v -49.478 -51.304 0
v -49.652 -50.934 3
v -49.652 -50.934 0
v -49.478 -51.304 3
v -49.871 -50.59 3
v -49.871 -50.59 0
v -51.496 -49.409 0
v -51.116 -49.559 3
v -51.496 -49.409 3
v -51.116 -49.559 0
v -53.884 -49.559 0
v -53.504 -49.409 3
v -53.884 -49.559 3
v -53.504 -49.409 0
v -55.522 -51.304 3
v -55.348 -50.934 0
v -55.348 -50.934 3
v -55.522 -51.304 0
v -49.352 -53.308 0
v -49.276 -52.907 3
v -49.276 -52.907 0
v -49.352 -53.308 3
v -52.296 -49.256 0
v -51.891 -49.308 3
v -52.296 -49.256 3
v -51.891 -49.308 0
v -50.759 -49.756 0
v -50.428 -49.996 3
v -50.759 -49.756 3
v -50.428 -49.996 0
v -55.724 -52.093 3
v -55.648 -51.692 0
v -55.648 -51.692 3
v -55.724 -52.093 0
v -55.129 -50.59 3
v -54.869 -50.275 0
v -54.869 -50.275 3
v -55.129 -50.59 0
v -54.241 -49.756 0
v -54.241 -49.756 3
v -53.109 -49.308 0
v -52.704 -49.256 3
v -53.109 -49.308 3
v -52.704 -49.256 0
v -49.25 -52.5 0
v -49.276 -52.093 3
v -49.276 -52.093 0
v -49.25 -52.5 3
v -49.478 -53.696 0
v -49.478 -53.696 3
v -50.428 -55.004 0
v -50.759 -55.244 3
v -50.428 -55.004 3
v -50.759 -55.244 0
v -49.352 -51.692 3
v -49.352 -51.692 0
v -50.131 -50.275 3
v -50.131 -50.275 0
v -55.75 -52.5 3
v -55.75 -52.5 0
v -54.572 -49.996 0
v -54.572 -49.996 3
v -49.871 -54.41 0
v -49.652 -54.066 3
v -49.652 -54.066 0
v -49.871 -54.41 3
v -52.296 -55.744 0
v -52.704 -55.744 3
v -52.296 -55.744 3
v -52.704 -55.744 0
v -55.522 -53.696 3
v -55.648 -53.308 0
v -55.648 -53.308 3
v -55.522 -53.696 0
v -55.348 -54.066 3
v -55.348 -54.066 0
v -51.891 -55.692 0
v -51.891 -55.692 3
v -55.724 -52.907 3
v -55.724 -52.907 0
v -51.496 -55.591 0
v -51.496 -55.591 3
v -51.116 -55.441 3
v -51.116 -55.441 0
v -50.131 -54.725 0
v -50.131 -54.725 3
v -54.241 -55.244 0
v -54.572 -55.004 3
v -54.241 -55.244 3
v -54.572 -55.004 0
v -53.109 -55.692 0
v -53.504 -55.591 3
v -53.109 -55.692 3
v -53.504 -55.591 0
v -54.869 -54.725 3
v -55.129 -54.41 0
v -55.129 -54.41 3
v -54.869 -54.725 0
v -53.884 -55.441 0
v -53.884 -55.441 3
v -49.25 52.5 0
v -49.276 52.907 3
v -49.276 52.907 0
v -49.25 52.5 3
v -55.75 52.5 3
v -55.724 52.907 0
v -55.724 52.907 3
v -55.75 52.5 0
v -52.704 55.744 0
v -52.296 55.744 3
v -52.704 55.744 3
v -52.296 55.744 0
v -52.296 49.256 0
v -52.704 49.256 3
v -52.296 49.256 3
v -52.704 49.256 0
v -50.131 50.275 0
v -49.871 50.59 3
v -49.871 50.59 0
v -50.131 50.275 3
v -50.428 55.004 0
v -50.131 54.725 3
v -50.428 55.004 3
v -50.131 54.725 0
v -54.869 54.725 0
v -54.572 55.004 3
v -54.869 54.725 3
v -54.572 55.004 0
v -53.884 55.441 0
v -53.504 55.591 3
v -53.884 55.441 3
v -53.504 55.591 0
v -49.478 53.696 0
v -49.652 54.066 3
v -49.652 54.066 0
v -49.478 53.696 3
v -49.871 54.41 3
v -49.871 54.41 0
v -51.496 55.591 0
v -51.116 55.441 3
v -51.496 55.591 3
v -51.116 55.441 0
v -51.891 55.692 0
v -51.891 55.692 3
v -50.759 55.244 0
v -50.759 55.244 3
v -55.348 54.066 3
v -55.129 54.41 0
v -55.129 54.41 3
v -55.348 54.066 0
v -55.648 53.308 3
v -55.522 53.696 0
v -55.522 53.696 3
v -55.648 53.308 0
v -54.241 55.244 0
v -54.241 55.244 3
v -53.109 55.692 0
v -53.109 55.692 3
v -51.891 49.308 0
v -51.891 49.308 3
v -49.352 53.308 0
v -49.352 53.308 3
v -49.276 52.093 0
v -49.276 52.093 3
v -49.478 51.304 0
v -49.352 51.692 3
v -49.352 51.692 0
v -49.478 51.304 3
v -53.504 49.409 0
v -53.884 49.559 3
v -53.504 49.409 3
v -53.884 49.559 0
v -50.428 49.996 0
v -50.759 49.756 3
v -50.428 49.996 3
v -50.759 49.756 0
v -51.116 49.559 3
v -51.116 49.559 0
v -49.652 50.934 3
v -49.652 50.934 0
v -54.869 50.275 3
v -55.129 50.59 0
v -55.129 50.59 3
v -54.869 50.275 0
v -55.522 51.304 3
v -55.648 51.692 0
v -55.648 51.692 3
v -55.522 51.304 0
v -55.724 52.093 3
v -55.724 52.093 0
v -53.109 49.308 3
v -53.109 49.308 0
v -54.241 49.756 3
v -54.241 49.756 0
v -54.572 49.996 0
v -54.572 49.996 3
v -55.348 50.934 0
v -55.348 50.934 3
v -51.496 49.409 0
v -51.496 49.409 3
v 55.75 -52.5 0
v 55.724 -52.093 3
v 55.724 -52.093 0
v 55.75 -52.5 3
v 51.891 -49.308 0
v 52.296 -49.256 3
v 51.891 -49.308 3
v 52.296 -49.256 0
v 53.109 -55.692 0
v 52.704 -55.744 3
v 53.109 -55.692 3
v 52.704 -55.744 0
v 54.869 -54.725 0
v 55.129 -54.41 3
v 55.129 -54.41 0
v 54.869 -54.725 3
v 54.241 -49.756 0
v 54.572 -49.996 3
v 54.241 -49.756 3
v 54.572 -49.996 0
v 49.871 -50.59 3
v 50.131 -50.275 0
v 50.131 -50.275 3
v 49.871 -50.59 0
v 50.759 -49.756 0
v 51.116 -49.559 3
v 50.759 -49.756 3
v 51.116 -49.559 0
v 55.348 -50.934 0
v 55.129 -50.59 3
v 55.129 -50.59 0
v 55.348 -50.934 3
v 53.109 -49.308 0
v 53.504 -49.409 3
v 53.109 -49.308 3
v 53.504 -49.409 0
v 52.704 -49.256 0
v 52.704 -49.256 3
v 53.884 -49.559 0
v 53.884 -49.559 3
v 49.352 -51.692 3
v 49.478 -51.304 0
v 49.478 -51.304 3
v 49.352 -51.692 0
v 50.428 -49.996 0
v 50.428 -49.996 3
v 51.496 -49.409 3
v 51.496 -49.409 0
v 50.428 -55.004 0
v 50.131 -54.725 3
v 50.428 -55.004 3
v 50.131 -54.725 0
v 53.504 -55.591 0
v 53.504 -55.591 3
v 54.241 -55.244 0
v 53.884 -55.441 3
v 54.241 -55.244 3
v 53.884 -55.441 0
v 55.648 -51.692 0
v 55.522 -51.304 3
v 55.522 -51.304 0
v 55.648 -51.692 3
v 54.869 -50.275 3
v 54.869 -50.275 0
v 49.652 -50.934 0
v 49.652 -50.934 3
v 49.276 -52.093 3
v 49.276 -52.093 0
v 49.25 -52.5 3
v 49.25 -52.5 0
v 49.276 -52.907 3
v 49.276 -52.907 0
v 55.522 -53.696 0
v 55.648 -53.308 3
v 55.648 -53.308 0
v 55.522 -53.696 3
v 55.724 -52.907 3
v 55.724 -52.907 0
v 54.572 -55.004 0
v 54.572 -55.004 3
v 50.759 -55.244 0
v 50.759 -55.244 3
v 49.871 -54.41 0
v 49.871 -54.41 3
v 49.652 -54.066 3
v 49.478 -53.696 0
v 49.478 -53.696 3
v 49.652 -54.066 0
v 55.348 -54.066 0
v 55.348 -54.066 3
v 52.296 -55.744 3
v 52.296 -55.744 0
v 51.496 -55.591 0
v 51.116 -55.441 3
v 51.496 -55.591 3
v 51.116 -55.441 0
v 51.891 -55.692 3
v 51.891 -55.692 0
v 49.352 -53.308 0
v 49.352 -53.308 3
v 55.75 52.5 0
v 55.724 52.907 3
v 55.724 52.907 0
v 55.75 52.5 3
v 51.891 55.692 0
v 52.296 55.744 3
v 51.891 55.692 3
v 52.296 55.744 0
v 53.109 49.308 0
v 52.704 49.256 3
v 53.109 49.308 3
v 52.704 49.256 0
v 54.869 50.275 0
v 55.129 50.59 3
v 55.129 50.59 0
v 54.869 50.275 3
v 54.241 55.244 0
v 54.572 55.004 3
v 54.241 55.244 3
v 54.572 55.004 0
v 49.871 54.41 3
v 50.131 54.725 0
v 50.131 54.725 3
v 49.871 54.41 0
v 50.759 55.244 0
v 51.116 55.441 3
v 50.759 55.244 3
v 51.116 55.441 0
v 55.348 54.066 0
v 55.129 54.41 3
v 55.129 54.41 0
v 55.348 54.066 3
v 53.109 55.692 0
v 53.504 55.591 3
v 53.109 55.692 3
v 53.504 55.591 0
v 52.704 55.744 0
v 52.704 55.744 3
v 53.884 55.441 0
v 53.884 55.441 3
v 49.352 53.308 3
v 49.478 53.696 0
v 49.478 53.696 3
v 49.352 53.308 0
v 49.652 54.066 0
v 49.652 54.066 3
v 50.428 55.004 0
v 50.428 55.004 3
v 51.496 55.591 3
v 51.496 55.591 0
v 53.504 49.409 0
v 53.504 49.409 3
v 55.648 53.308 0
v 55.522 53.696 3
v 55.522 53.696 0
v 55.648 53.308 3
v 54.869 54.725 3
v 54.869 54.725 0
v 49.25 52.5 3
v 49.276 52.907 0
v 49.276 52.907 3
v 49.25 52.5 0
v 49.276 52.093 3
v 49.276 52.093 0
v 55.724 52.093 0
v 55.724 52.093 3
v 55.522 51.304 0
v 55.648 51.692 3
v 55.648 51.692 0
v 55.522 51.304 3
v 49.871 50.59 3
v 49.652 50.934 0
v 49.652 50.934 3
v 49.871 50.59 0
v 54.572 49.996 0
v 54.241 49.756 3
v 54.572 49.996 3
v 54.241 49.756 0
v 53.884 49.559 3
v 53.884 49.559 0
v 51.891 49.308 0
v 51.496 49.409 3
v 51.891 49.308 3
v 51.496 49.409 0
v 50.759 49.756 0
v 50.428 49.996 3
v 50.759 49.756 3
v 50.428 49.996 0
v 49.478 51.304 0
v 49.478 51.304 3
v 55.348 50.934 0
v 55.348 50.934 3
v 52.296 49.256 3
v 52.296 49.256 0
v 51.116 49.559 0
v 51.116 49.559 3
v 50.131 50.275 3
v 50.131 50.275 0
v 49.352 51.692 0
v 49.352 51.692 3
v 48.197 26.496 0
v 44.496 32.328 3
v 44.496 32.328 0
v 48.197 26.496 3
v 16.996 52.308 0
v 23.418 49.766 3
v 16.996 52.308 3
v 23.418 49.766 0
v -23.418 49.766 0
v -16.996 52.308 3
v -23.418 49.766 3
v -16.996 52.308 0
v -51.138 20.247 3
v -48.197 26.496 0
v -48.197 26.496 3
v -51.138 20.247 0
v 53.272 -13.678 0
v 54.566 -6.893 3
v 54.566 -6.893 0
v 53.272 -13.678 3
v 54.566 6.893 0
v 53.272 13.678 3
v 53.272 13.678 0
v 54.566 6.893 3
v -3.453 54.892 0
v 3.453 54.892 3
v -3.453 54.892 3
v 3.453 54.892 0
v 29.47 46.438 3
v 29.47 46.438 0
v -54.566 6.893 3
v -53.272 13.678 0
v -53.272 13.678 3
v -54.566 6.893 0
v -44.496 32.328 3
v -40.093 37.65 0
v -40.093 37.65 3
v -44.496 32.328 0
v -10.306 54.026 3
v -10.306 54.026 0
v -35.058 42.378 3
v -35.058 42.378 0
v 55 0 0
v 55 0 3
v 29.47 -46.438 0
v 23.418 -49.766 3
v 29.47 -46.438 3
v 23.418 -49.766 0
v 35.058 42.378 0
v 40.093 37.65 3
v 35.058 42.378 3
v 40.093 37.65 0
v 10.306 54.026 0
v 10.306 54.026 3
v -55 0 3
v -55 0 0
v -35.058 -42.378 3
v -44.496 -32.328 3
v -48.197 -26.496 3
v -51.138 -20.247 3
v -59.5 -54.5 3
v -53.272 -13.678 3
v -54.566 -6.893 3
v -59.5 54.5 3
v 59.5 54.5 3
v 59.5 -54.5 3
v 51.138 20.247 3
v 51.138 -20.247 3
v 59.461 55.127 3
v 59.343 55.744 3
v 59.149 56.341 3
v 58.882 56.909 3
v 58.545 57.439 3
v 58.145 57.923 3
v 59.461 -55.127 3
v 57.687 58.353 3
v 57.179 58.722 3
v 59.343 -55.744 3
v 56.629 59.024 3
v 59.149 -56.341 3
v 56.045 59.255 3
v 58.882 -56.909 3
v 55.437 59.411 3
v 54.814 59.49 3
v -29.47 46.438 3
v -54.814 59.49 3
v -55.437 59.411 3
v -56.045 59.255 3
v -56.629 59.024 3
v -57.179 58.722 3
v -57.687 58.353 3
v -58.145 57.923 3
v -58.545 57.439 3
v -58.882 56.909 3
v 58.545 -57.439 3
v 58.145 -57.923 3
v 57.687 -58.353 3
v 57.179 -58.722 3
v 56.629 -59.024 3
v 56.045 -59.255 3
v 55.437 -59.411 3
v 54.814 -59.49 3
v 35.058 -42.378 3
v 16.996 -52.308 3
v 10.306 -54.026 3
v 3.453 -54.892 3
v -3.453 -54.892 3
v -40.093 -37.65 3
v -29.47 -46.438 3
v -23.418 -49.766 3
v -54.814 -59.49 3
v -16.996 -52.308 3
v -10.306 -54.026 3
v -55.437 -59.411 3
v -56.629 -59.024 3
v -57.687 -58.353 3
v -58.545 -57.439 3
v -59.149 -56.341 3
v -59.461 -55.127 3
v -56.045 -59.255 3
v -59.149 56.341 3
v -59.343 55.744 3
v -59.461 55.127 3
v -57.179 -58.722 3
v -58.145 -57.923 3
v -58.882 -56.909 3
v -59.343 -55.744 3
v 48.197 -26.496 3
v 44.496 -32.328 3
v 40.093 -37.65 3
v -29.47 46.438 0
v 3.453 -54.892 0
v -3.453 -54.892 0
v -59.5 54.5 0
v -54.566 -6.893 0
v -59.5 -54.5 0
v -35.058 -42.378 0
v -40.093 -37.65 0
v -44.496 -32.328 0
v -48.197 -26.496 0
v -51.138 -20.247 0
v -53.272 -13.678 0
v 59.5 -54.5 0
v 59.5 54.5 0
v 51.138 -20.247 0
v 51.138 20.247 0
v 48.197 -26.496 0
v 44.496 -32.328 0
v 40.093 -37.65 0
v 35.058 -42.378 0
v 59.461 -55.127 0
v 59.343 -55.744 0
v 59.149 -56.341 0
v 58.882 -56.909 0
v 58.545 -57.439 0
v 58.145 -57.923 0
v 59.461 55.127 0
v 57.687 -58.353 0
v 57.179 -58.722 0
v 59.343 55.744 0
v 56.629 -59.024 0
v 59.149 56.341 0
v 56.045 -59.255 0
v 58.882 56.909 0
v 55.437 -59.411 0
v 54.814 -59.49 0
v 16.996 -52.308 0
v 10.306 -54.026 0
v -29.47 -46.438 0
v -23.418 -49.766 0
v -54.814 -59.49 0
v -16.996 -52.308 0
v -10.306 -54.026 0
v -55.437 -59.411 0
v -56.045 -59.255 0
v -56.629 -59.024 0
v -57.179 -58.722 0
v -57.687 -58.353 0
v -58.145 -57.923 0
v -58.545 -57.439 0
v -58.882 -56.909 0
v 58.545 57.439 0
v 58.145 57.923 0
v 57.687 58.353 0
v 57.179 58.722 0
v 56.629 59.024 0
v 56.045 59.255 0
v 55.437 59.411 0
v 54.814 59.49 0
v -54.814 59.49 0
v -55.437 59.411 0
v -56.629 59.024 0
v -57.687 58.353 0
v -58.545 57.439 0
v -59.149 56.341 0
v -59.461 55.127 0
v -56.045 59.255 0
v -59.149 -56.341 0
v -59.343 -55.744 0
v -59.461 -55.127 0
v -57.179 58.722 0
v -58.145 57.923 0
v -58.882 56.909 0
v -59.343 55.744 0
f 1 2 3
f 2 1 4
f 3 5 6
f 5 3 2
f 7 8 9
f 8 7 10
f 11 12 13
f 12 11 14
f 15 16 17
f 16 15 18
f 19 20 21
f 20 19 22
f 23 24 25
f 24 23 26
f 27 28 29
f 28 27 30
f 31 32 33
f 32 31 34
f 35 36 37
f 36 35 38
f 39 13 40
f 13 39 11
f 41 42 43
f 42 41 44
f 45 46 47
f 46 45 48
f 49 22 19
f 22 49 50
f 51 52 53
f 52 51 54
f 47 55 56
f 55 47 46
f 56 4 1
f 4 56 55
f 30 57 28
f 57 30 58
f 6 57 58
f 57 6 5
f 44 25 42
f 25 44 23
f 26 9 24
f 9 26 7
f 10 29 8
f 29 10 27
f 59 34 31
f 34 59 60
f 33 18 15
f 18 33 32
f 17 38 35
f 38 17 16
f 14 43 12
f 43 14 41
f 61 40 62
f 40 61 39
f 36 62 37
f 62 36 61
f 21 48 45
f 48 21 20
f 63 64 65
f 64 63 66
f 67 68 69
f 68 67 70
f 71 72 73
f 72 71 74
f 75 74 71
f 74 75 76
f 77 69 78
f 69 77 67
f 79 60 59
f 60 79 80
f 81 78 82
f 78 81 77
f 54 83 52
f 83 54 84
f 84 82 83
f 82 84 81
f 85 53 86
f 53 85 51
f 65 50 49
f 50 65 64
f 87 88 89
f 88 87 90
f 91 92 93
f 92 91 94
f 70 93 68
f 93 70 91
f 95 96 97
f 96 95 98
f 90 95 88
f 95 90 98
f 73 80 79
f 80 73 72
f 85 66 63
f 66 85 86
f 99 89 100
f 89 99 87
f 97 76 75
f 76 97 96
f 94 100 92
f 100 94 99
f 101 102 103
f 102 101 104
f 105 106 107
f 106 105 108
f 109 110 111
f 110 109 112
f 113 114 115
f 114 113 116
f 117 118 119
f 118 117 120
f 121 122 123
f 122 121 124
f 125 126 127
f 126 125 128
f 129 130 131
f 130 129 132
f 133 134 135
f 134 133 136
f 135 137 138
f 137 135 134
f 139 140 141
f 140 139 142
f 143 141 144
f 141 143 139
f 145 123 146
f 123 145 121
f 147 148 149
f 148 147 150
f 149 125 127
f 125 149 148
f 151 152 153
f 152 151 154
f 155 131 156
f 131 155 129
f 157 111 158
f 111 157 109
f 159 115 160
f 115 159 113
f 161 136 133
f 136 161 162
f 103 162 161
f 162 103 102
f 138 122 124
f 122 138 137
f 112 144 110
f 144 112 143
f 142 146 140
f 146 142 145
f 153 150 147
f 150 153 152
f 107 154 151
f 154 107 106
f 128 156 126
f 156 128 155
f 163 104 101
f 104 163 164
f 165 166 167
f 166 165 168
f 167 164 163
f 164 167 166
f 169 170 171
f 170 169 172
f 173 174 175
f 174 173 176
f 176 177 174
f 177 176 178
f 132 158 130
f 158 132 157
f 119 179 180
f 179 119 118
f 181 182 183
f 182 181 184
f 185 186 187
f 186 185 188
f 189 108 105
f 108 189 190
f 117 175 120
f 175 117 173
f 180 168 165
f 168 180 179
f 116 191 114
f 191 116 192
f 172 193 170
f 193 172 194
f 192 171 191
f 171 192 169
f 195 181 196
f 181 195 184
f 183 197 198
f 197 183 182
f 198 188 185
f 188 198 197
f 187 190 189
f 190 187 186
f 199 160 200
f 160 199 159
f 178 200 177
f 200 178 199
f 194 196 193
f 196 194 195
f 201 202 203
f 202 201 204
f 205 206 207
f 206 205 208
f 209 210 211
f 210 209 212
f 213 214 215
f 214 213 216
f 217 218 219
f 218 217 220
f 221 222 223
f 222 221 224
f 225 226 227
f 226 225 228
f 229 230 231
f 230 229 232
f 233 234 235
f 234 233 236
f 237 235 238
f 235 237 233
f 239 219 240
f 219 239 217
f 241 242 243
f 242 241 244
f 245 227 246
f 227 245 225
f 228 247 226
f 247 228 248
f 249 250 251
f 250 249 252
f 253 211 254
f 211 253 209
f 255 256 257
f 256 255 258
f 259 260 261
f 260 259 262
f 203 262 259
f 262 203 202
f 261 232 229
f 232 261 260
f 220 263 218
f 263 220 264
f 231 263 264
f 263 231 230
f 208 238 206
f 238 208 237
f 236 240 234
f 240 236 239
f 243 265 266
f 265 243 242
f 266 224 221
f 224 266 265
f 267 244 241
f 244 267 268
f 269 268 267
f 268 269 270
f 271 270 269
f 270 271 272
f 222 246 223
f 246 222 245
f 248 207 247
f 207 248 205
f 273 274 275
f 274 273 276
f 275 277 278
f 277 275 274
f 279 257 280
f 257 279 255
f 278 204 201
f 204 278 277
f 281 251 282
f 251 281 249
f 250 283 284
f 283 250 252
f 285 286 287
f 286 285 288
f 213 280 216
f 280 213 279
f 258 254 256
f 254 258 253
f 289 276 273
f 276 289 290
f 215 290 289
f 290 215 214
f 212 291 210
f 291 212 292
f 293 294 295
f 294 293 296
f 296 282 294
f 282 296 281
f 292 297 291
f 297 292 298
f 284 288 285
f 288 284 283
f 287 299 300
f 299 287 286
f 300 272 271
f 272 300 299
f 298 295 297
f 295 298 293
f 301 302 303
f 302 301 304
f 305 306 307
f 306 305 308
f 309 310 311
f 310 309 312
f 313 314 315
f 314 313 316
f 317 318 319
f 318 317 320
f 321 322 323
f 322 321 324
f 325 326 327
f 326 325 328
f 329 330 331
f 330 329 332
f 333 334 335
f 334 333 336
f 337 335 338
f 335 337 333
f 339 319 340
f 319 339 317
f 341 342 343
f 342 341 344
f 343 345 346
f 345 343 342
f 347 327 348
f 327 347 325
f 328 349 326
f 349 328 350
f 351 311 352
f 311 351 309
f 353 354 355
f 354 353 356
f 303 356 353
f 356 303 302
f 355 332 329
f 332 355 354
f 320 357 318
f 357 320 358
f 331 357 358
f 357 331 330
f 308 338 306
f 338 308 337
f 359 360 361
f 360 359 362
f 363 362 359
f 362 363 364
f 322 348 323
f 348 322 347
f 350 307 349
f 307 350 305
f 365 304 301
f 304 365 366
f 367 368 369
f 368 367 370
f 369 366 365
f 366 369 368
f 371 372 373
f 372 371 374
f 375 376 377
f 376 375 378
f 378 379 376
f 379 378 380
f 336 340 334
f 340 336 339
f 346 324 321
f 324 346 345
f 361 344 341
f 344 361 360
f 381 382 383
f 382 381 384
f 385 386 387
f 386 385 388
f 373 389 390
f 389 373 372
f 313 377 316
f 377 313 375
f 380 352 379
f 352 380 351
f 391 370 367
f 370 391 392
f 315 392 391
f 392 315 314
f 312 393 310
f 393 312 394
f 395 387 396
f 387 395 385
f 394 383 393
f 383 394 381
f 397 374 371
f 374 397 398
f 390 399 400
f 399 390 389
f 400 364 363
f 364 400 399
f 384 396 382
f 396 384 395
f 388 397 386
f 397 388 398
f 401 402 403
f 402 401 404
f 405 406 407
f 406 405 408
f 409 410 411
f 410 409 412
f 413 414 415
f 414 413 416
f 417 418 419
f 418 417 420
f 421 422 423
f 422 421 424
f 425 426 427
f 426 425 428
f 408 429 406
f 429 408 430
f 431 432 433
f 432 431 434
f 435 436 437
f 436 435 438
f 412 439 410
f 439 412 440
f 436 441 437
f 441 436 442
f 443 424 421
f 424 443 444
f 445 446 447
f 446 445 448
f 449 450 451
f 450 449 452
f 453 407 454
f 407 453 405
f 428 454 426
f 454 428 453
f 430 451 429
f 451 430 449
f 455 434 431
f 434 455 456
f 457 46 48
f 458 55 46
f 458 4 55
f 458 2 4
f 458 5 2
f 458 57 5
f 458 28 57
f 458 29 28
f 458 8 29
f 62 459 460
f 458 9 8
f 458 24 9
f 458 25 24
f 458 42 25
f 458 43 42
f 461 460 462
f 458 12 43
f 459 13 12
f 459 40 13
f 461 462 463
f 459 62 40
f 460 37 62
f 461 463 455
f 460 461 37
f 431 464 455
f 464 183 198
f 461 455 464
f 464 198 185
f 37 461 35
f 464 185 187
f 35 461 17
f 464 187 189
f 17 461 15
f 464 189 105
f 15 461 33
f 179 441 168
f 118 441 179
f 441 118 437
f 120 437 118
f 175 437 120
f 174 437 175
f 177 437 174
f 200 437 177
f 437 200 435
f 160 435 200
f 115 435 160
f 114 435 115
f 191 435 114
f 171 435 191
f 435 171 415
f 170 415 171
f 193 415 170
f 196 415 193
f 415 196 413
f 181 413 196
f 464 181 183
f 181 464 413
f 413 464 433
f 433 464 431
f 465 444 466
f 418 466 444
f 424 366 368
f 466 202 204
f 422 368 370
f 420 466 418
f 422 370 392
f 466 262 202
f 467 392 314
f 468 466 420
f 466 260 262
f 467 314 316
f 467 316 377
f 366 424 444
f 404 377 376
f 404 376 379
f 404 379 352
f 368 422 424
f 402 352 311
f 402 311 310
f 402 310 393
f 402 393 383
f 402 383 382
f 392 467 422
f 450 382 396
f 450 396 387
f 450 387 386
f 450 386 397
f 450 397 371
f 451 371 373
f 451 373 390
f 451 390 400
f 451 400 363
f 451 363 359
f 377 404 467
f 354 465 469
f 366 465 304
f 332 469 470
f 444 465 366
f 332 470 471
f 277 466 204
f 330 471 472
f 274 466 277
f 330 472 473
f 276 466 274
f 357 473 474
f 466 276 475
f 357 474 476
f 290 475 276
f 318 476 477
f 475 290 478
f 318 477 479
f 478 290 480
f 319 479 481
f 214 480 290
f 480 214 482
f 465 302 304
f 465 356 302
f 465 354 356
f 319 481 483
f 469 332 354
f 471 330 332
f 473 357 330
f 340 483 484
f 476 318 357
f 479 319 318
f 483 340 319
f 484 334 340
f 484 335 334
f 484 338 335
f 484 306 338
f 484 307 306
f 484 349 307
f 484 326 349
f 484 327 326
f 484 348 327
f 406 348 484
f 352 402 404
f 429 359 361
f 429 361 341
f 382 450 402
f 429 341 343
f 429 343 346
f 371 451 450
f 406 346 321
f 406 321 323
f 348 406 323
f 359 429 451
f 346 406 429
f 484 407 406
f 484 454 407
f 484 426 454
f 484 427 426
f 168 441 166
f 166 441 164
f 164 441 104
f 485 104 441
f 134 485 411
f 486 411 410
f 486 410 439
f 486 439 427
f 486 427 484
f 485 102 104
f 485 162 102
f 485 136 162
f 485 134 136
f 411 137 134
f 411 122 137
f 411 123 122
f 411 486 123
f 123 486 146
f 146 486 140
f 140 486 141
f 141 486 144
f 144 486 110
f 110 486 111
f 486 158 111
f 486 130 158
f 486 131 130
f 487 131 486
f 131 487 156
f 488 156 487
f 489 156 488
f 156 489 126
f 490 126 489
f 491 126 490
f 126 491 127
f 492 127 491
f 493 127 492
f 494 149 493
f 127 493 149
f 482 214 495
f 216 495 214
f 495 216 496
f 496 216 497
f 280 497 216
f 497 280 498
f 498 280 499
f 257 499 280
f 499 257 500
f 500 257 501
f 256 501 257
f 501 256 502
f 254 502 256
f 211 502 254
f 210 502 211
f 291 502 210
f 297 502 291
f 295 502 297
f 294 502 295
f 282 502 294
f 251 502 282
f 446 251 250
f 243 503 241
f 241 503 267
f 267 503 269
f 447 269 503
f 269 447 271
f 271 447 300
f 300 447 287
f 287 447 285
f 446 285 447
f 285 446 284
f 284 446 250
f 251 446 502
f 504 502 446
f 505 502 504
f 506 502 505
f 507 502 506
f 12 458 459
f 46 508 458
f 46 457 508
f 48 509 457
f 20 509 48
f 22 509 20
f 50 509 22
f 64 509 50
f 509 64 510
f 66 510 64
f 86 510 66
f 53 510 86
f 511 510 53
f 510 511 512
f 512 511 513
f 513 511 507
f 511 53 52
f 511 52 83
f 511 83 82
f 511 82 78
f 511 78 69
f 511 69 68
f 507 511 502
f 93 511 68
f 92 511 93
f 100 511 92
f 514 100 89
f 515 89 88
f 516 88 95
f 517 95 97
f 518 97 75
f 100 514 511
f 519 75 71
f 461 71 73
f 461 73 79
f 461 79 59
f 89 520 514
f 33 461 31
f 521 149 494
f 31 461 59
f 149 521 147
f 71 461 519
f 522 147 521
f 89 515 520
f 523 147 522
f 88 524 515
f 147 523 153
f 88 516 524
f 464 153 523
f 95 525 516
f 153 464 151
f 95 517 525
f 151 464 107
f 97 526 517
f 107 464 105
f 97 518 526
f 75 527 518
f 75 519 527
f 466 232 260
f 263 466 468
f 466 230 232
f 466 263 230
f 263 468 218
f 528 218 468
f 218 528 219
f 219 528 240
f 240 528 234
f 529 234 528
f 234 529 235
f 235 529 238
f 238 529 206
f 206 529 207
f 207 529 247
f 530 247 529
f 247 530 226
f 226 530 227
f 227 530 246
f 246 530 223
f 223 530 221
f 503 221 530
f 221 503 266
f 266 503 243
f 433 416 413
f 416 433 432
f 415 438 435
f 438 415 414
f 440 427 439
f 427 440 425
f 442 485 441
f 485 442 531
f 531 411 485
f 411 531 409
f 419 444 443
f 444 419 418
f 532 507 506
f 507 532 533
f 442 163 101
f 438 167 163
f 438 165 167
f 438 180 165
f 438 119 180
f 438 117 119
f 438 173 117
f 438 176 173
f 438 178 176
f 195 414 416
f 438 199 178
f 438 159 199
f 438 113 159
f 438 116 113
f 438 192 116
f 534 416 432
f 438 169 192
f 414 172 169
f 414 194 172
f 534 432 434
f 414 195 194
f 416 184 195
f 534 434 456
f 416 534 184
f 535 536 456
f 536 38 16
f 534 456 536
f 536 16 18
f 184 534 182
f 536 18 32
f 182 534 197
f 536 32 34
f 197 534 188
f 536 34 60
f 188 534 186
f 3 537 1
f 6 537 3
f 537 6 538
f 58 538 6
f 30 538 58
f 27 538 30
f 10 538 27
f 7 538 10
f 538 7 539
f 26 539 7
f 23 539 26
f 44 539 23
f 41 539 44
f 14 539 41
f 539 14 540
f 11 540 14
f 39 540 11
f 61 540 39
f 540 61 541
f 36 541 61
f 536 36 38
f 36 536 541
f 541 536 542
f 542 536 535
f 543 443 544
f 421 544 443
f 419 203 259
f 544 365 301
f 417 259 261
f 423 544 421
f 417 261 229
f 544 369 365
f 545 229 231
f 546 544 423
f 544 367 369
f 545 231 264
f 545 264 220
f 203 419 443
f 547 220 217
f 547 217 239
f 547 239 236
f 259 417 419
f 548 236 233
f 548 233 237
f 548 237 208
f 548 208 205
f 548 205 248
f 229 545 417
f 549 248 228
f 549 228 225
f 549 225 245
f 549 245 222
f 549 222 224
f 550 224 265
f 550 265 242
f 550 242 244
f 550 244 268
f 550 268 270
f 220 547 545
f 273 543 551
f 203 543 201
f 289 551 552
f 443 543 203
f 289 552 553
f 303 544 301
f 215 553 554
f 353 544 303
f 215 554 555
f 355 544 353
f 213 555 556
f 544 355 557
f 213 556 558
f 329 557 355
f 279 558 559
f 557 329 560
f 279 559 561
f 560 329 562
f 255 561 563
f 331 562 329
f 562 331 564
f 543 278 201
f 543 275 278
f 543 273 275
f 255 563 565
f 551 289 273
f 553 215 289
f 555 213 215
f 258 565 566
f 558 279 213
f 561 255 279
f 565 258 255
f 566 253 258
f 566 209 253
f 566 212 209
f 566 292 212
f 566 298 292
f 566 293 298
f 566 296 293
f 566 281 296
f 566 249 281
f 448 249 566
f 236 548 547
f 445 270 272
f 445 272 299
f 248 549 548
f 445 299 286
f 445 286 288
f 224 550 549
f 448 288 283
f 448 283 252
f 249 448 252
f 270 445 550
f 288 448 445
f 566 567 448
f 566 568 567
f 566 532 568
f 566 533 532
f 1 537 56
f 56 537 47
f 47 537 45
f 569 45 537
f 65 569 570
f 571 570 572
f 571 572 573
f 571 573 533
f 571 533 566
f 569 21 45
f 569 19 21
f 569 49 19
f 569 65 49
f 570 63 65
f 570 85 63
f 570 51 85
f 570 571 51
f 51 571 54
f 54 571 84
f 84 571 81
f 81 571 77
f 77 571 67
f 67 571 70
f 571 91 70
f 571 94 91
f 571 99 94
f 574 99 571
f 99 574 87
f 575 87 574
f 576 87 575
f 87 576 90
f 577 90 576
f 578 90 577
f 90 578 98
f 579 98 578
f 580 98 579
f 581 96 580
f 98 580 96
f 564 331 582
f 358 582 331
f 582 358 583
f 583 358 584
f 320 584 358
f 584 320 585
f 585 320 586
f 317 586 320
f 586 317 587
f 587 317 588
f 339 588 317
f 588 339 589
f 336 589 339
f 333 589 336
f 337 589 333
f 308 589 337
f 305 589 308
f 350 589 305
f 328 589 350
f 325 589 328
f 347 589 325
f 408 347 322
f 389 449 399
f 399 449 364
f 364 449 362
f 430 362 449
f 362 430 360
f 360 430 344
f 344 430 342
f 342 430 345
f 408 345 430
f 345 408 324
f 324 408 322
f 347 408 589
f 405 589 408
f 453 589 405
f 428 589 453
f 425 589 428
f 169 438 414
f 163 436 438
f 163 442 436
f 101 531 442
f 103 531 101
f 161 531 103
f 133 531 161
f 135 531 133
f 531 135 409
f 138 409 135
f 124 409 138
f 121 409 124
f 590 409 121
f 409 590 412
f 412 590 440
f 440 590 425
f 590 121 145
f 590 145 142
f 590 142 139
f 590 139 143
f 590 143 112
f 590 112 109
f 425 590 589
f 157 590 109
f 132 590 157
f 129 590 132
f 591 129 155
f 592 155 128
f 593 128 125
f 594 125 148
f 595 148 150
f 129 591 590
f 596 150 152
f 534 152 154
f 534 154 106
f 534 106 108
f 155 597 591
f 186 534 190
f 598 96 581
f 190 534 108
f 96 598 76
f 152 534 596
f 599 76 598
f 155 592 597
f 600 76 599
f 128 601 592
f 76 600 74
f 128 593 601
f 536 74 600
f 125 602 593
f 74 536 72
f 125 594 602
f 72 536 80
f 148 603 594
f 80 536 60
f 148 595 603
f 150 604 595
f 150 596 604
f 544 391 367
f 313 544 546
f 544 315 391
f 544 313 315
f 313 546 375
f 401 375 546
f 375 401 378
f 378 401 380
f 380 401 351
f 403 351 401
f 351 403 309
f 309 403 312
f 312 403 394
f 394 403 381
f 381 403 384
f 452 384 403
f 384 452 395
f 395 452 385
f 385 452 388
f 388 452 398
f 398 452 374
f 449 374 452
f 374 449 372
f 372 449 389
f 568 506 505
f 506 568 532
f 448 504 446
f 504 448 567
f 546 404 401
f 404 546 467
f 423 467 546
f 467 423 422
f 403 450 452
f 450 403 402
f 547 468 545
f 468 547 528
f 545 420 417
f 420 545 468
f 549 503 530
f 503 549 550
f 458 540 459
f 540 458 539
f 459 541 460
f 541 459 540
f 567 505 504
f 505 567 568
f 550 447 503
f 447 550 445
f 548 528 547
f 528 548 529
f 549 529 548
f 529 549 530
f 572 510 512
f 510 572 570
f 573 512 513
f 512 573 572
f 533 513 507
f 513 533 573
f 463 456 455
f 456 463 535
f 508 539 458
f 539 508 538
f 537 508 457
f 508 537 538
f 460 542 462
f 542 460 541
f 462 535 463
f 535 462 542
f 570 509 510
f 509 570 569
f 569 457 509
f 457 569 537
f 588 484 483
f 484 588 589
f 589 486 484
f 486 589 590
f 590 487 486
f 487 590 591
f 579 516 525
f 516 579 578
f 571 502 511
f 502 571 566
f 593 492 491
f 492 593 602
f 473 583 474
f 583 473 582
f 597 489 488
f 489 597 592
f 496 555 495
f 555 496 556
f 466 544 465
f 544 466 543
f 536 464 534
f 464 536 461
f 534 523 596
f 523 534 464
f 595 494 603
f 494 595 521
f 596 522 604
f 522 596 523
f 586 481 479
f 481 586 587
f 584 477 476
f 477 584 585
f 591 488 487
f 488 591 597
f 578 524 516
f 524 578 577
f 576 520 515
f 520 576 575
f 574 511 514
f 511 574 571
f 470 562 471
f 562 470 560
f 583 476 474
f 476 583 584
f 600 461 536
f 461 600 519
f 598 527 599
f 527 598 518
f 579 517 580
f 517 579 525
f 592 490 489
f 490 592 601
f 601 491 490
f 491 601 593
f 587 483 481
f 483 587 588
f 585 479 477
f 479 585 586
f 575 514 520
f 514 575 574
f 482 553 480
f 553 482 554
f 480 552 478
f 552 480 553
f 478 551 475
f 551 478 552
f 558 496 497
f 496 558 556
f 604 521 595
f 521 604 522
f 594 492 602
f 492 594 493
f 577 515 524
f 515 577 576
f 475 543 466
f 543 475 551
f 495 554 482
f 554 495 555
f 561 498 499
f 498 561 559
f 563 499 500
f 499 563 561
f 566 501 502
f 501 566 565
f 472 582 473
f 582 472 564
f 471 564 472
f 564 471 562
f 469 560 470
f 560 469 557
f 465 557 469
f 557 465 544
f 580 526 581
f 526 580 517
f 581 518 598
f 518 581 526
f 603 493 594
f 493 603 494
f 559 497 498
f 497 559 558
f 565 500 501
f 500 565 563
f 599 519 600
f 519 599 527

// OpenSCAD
$fn = 50;


difference() {
	union() {
		hull() {
			translate(v = [-54.5000000000, 54.5000000000, 0]) {
				cylinder(h = 3, r = 5);
			}
			translate(v = [54.5000000000, 54.5000000000, 0]) {
				cylinder(h = 3, r = 5);
			}
			translate(v = [-54.5000000000, -54.5000000000, 0]) {
				cylinder(h = 3, r = 5);
			}
			translate(v = [54.5000000000, -54.5000000000, 0]) {
				cylinder(h = 3, r = 5);
			}
		}
	}
	union() {
		#translate(v = [-52.5000000000, -52.5000000000, -100.0000000000]) {
			cylinder(h = 200, r = 3.2500000000);
		}
		#translate(v = [-52.5000000000, 52.5000000000, -100.0000000000]) {
			cylinder(h = 200, r = 3.2500000000);
		}
		#translate(v = [52.5000000000, -52.5000000000, -100.0000000000]) {
			cylinder(h = 200, r = 3.2500000000);
		}
		#translate(v = [52.5000000000, 52.5000000000, -100.0000000000]) {
			cylinder(h = 200, r = 3.2500000000);
		}
		#cylinder(h = 3, r = 55.0000000000);
	}
}
